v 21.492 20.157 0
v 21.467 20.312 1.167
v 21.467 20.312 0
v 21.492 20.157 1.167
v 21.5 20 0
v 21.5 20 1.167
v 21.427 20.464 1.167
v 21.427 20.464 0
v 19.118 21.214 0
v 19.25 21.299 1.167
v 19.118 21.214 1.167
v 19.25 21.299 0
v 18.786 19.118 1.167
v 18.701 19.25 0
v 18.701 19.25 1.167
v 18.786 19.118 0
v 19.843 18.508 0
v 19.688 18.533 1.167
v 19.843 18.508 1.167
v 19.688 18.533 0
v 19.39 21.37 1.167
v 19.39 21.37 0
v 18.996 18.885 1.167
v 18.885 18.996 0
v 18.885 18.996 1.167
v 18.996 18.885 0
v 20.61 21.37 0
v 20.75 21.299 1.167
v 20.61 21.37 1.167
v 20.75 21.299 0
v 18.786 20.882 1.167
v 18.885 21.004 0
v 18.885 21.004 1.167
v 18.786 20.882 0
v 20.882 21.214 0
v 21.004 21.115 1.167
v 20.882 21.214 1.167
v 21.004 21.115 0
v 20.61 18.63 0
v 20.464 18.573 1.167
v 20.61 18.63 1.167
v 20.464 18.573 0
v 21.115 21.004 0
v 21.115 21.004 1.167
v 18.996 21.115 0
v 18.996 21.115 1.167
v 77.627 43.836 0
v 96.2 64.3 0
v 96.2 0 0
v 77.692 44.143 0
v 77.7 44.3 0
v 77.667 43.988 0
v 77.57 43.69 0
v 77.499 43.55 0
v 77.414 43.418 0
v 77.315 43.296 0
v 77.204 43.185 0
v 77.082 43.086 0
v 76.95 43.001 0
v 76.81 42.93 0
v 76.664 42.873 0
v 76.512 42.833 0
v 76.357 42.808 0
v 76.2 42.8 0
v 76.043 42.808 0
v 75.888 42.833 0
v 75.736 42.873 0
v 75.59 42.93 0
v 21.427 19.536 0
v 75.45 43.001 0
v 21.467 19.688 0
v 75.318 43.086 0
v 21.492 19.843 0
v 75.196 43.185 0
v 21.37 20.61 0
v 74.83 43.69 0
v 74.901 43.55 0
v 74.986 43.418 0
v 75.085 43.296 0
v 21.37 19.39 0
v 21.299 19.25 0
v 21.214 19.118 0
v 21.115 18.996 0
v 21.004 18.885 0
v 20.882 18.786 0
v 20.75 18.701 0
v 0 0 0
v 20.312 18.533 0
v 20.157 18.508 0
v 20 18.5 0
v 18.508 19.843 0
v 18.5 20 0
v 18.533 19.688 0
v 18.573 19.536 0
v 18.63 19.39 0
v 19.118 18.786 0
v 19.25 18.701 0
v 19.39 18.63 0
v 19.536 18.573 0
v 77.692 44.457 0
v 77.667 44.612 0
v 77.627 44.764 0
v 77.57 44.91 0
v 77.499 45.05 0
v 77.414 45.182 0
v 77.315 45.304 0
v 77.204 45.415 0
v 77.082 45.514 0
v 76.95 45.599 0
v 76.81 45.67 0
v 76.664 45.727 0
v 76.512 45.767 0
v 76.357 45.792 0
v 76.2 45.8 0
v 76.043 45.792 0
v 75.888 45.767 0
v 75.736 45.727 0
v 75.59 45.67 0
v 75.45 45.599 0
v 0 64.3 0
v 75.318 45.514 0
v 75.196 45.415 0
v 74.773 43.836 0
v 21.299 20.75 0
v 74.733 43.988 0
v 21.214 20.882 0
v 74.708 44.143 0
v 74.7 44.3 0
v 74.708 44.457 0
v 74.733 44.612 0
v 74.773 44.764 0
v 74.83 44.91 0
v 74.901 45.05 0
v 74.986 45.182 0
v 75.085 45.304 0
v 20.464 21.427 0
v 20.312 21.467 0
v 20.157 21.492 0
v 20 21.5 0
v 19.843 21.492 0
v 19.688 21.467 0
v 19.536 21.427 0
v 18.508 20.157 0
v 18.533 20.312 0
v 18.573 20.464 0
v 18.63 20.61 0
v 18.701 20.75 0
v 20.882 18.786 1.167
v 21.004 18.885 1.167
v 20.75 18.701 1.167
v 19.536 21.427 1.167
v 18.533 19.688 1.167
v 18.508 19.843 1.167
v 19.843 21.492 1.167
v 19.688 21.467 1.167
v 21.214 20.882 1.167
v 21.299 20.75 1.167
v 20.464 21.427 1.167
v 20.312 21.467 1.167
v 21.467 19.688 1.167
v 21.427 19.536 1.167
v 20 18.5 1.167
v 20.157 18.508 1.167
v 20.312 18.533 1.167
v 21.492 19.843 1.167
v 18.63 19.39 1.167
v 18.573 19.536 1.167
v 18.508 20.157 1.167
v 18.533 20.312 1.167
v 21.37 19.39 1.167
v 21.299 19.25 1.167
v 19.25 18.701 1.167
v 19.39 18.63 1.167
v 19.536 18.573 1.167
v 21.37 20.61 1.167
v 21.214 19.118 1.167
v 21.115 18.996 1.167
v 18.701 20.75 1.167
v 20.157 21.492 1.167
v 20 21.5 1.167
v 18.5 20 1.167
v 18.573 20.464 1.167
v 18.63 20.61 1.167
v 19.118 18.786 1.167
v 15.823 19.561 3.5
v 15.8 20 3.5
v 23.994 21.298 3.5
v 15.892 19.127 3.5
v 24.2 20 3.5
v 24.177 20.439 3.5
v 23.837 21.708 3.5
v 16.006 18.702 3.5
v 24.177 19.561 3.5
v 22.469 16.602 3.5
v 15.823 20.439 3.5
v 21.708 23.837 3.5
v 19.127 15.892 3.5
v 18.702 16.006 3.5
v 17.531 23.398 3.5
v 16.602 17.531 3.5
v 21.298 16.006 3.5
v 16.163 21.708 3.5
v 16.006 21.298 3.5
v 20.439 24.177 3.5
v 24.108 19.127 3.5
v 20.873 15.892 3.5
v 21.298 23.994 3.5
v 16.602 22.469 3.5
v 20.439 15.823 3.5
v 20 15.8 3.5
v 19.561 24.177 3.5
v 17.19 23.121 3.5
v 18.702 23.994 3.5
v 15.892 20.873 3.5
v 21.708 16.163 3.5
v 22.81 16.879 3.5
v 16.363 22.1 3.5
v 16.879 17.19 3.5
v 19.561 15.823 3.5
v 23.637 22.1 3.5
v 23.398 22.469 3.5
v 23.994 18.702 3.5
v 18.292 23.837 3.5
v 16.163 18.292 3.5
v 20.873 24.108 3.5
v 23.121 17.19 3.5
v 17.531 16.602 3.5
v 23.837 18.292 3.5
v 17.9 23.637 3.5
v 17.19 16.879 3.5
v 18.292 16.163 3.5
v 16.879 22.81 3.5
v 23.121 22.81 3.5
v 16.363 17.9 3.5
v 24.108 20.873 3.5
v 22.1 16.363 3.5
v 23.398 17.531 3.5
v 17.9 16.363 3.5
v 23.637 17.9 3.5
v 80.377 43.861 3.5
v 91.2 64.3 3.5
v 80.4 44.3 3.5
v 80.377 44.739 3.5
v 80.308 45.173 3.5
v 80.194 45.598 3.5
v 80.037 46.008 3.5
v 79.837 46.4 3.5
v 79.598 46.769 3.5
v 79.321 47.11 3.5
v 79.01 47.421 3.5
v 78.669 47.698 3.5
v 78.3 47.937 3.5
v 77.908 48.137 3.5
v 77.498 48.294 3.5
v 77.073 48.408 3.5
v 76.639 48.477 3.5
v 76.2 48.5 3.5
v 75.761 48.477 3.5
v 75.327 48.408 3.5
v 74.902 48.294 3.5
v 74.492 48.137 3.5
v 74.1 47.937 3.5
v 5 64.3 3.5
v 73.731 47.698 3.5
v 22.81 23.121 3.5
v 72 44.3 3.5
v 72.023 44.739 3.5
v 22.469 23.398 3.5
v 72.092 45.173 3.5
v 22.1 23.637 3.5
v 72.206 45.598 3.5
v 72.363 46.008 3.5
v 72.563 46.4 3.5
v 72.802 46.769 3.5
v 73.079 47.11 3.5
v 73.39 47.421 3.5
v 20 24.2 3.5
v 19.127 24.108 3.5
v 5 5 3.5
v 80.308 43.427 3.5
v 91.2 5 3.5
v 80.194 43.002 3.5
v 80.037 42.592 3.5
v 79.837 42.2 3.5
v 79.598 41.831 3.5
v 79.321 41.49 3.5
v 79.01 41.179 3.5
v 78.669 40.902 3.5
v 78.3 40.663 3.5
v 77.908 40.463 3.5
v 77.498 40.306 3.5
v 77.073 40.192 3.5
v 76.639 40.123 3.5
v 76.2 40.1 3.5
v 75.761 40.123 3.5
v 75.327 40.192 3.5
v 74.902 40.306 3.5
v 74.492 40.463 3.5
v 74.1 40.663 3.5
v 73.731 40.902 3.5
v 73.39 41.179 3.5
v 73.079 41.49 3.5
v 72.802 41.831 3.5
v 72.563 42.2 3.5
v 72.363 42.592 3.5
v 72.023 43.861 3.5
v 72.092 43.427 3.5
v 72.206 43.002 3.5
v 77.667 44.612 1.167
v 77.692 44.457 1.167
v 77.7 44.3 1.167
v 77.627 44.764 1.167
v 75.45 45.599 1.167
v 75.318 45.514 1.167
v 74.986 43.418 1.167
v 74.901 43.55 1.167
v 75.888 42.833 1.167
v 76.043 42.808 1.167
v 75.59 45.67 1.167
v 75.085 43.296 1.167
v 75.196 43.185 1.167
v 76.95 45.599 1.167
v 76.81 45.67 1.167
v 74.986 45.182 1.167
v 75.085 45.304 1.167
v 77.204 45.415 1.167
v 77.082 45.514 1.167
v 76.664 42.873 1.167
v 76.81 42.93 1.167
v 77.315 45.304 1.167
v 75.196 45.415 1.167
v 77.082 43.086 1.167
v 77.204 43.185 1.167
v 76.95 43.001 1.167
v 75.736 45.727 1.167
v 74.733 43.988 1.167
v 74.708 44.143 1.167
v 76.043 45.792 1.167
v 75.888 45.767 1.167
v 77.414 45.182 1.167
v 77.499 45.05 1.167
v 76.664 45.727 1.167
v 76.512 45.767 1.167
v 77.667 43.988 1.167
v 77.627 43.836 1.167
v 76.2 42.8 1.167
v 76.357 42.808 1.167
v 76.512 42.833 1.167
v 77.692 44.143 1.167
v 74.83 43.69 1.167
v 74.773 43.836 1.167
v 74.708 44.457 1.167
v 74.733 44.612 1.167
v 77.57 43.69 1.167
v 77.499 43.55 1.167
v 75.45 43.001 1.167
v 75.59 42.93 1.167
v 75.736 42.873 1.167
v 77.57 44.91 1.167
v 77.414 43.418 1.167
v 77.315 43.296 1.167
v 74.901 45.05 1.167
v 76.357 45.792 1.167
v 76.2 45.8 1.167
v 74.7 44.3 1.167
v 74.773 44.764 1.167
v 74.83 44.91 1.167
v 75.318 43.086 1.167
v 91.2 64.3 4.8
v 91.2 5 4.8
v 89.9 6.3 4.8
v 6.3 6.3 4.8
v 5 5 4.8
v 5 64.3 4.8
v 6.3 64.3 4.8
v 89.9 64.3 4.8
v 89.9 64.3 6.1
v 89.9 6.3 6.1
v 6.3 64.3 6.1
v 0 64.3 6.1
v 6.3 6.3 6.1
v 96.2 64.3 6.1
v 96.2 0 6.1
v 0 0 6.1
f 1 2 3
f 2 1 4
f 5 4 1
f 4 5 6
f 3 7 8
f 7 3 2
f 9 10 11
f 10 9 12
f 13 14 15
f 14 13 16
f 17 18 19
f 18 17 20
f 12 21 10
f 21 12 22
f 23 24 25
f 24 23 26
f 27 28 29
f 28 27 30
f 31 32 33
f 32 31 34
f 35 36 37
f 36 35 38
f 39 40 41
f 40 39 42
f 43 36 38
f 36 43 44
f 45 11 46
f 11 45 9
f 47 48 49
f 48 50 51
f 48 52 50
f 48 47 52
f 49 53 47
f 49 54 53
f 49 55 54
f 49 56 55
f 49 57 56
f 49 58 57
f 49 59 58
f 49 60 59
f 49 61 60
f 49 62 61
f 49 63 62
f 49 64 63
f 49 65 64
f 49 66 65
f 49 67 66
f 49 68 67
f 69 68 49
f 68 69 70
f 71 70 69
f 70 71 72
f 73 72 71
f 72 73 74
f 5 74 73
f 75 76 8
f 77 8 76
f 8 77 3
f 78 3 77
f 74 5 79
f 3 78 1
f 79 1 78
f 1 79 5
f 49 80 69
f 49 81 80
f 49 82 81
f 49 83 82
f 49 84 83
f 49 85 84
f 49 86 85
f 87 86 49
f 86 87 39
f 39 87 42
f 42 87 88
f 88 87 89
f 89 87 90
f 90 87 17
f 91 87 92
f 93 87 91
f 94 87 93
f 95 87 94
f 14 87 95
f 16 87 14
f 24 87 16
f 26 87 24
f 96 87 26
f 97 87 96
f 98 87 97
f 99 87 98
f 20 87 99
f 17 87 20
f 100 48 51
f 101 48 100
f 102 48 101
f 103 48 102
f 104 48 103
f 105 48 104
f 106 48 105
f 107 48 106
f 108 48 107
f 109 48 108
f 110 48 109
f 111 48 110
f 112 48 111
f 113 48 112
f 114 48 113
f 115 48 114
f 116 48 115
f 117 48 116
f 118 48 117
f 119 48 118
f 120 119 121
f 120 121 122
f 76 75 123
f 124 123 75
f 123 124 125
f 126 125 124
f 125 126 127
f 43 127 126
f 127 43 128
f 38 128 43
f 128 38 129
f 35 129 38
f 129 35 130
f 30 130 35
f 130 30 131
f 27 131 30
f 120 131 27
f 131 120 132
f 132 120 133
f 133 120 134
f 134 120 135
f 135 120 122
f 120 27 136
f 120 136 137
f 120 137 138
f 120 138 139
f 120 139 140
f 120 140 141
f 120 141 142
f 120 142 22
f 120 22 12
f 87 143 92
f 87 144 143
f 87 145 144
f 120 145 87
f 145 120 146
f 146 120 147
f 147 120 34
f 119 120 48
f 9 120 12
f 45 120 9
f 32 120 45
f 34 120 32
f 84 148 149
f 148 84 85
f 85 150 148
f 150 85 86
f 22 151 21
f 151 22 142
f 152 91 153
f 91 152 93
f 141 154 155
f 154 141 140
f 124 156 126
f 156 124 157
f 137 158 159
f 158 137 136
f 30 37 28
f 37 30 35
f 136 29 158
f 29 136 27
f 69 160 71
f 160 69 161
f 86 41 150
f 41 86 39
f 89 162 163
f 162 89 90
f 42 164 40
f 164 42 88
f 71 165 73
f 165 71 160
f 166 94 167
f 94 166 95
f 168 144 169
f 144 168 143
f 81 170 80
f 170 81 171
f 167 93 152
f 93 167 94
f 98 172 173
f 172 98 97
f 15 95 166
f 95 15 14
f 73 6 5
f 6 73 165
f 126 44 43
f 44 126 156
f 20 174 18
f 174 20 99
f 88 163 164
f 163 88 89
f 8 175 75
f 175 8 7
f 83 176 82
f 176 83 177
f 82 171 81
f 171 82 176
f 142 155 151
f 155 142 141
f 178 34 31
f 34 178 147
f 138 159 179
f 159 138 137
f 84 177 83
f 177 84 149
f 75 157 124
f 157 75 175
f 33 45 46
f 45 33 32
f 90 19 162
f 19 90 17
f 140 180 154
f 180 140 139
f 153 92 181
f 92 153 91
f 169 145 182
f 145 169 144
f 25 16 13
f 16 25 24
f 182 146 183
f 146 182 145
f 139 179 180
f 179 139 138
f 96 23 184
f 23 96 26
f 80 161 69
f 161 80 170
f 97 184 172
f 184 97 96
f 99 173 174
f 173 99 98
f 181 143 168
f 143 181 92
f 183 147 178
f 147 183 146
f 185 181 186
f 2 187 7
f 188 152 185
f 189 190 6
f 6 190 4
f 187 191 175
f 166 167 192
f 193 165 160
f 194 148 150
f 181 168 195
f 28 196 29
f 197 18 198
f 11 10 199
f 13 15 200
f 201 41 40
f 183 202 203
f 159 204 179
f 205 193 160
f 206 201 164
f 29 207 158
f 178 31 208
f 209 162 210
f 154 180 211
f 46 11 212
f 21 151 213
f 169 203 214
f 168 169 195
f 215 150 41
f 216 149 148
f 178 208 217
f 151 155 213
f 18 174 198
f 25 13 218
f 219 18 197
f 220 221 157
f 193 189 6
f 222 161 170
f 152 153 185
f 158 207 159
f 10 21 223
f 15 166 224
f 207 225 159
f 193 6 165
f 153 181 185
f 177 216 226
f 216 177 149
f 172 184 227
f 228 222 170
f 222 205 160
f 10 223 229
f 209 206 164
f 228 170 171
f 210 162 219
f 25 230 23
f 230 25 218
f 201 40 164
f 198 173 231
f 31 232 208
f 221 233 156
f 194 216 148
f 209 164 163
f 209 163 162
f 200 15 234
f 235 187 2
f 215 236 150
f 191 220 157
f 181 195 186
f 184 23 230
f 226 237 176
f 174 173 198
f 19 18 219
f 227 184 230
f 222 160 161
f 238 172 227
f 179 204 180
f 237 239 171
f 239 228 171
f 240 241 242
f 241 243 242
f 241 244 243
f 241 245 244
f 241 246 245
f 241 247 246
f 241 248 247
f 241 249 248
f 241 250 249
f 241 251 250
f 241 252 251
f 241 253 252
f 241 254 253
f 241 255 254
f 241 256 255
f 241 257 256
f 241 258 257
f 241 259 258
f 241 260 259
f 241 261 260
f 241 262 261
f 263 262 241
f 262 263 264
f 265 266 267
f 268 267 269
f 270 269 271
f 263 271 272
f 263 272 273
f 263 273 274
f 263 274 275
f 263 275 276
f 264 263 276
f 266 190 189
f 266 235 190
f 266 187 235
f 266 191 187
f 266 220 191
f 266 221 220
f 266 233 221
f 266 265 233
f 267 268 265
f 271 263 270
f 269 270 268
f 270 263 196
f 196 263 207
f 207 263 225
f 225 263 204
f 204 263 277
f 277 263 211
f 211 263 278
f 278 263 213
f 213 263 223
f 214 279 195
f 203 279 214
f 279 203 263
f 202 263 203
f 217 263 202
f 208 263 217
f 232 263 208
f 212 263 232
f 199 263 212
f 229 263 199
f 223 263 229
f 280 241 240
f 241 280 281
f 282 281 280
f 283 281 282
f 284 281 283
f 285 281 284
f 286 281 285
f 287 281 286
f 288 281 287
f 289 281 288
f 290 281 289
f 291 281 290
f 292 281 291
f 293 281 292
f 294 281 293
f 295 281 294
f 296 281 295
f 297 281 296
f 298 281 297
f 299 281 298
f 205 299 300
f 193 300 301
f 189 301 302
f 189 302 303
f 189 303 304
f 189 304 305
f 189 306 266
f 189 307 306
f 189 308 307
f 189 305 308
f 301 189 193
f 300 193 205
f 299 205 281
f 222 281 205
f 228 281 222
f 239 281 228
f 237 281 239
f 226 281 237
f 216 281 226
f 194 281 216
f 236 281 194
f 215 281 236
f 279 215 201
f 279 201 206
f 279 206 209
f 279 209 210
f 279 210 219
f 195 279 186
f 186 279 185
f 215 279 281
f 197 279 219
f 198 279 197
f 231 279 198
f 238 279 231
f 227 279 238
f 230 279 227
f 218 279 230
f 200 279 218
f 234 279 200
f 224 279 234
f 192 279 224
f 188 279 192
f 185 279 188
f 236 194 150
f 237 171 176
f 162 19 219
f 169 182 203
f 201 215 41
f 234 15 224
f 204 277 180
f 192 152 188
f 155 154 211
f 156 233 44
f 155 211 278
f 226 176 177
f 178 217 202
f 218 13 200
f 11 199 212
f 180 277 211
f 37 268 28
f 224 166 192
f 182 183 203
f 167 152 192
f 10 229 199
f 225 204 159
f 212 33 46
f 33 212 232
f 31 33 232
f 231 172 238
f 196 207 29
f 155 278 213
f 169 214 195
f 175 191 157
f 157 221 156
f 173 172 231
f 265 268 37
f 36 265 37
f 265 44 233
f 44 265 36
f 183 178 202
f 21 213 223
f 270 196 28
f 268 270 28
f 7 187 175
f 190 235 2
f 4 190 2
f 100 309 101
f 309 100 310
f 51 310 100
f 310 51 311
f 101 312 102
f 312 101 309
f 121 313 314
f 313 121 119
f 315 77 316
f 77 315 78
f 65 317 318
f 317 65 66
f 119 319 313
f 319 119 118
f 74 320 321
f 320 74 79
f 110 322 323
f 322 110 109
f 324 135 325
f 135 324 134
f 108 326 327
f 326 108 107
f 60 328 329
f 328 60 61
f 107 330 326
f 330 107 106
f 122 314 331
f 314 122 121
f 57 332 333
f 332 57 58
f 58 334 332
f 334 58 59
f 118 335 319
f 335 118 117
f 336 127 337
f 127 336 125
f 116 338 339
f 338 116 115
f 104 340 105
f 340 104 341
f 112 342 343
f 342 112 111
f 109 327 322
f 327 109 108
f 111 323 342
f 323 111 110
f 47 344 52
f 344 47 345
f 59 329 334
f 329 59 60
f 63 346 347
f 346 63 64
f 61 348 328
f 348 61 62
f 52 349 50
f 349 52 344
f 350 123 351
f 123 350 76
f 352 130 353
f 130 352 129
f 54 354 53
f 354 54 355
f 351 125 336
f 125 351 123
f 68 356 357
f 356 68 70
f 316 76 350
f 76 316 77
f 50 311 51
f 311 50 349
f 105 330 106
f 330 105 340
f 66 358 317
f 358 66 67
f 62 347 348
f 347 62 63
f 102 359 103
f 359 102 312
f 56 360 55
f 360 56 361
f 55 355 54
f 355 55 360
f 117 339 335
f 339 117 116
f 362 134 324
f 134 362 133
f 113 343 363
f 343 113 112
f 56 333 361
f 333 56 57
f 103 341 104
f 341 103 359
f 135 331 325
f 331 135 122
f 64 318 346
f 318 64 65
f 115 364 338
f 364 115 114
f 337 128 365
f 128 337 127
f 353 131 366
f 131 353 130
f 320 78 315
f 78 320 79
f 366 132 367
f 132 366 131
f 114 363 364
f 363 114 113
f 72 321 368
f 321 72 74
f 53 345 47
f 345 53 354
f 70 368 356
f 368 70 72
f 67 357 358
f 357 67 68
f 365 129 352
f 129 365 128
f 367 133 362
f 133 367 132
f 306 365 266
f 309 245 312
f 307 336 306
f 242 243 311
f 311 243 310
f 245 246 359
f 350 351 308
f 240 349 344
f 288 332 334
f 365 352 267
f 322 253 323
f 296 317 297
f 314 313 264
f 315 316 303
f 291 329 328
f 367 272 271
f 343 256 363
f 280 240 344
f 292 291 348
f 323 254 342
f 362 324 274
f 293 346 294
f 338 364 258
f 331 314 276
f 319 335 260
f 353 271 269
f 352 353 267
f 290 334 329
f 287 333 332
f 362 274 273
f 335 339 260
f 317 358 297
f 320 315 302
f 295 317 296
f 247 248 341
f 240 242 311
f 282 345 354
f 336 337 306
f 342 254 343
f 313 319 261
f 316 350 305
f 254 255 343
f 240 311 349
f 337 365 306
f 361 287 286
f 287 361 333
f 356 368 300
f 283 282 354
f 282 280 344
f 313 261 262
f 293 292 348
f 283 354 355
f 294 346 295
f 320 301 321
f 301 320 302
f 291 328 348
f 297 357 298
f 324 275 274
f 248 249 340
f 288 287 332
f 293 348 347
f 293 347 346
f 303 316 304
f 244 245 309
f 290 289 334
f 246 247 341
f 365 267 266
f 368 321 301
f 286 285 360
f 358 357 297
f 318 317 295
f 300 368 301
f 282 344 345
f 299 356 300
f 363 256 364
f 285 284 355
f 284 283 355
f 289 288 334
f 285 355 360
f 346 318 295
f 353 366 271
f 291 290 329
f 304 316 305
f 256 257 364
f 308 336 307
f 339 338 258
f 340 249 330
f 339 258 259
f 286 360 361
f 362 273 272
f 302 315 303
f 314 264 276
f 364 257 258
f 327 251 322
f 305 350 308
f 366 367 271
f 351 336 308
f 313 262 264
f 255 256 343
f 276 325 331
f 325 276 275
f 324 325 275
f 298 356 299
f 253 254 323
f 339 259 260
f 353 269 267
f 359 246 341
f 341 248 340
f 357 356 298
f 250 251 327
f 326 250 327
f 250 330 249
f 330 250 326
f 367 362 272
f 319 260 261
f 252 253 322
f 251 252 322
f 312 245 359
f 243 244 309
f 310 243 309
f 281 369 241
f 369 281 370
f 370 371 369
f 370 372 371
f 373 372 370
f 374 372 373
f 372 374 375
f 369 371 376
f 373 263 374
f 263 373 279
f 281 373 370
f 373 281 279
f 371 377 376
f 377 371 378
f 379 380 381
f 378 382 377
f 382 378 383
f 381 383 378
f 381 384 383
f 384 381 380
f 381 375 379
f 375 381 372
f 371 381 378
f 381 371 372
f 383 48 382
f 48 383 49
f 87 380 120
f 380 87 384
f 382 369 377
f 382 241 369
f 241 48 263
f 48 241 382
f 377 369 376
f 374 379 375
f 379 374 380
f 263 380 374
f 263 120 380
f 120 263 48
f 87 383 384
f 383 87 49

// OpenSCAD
// Card holder to wall
// card size
cardWidth = 86.2;
cardLength = 54.3;
cardHight  = 1.3;
ram = 10;

wall = 3.5;

module zakladna(w,l,h)
{
    difference() {
        cube ( [w, l, h] );
        union() {
            // otvory pro vruty
            translate([2*ram, 2*ram, 0]) hlvrutu(3,wall);
            translate([w-2*ram, l-2*ram, 0]) hlvrutu(3,wall);
            // otvor pro kartu
            translate([ram/2, ram/2, wall]) cube([cardWidth,cardLength+ram,cardHight]);
            // okenko
            translate([ram/2+cardHight, ram/2+cardHight, wall+cardHight]) cube([cardWidth-2*cardHight,cardLength+ram,cardHight]);
        } // union odectene casti
    } // diff  
}

module hlvrutu(otvor,vyska) {
   cylinder(d=otvor,h=vyska/3,$fn=60);
   translate([0,0,vyska/3]) cylinder(d1=otvor,d2=2.8*otvor,h=2*vyska/3,$fn=60); 
}

zakladna(cardWidth+ram,cardLength+ram,wall+2*cardHight);
// hlvrutu(3,wall);
